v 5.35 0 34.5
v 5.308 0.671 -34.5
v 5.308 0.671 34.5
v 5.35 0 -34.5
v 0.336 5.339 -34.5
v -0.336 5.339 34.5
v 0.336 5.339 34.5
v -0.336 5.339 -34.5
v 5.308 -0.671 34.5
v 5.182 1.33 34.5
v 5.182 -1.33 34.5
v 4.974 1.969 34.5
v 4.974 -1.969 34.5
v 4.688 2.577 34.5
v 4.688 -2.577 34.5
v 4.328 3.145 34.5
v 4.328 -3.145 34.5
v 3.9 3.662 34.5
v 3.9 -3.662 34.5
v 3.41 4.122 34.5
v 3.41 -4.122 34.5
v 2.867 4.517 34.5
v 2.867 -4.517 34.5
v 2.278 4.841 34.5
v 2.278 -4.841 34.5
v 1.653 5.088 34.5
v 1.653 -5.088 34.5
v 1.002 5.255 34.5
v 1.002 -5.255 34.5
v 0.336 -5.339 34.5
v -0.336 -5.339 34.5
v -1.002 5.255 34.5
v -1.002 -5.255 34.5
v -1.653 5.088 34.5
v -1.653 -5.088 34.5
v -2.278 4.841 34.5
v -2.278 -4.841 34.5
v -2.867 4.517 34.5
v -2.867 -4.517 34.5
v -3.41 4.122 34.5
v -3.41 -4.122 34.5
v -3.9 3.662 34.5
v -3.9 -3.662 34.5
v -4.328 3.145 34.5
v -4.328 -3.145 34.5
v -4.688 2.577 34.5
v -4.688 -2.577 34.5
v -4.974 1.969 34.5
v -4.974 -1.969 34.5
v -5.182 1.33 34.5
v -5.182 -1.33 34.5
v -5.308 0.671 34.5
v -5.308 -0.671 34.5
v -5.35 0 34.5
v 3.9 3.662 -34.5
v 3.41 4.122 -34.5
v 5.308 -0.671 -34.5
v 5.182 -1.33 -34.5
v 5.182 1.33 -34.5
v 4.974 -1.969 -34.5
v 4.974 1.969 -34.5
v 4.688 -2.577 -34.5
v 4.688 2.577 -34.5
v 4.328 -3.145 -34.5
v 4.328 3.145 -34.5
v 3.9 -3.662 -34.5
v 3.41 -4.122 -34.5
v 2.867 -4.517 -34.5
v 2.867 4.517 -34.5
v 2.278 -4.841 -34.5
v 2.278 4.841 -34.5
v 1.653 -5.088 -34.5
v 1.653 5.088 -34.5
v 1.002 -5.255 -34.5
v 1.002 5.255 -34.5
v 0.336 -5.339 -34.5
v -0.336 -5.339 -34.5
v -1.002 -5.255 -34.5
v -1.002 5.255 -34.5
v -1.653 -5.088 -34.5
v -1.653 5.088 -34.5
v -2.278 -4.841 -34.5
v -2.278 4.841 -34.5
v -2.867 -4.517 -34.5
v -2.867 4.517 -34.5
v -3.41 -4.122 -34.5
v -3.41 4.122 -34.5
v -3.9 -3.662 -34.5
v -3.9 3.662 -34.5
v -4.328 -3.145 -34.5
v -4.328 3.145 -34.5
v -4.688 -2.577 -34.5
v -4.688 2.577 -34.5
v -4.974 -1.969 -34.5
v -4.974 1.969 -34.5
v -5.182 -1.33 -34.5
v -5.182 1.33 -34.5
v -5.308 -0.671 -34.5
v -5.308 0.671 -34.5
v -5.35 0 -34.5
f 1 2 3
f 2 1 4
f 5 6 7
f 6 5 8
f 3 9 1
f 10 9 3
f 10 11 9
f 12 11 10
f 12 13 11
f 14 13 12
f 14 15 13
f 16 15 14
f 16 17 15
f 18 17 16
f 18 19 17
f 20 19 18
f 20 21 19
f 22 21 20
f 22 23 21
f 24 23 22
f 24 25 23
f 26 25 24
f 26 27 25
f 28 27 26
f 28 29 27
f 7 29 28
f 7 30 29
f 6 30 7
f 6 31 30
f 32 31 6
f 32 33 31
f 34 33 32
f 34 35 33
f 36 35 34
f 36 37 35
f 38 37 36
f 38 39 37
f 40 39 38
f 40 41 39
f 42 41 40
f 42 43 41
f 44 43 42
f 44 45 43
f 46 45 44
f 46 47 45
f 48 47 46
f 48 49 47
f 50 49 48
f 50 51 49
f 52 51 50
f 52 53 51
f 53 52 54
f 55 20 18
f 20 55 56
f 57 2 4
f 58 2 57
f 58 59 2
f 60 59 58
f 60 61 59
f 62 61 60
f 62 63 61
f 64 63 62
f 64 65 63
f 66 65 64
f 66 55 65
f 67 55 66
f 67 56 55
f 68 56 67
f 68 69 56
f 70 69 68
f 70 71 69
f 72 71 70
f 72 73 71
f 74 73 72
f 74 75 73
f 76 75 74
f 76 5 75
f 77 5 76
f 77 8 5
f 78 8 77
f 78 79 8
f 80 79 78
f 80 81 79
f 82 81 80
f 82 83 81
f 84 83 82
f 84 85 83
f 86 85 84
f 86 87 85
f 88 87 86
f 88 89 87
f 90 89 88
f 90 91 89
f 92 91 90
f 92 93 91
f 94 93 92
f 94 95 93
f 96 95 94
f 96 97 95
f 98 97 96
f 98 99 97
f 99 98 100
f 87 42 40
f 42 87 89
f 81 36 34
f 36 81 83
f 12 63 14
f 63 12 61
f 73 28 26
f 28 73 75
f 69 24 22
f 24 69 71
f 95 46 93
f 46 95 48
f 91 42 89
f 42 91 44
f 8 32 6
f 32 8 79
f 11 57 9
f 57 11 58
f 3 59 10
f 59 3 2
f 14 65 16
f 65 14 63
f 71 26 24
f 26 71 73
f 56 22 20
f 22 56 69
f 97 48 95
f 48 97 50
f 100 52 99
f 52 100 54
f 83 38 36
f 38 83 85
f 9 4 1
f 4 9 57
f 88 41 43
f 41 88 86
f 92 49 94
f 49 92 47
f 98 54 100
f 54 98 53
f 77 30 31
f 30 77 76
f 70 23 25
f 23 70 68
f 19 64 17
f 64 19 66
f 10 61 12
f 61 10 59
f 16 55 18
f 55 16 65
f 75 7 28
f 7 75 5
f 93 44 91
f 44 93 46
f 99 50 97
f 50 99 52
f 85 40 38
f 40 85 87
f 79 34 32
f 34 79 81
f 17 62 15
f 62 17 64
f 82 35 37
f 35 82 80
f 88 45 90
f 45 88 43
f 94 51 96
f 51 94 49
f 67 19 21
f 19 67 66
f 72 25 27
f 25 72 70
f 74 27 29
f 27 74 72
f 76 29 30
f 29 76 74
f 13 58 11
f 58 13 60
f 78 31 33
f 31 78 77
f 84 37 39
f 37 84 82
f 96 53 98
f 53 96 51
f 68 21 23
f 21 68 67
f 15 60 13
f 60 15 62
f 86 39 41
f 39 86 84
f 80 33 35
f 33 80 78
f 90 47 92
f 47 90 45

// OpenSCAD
$fn = 50;


difference() {
	union() {
		translate(v = [0, 0, -34.5000000000]) {
			cylinder(h = 69, r = 5.3500000000);
		}
	}
	union() {
		translate(v = [0, 0, -100.0000000000]) {
			cylinder(h = 200, r = 0);
		}
	}
}
